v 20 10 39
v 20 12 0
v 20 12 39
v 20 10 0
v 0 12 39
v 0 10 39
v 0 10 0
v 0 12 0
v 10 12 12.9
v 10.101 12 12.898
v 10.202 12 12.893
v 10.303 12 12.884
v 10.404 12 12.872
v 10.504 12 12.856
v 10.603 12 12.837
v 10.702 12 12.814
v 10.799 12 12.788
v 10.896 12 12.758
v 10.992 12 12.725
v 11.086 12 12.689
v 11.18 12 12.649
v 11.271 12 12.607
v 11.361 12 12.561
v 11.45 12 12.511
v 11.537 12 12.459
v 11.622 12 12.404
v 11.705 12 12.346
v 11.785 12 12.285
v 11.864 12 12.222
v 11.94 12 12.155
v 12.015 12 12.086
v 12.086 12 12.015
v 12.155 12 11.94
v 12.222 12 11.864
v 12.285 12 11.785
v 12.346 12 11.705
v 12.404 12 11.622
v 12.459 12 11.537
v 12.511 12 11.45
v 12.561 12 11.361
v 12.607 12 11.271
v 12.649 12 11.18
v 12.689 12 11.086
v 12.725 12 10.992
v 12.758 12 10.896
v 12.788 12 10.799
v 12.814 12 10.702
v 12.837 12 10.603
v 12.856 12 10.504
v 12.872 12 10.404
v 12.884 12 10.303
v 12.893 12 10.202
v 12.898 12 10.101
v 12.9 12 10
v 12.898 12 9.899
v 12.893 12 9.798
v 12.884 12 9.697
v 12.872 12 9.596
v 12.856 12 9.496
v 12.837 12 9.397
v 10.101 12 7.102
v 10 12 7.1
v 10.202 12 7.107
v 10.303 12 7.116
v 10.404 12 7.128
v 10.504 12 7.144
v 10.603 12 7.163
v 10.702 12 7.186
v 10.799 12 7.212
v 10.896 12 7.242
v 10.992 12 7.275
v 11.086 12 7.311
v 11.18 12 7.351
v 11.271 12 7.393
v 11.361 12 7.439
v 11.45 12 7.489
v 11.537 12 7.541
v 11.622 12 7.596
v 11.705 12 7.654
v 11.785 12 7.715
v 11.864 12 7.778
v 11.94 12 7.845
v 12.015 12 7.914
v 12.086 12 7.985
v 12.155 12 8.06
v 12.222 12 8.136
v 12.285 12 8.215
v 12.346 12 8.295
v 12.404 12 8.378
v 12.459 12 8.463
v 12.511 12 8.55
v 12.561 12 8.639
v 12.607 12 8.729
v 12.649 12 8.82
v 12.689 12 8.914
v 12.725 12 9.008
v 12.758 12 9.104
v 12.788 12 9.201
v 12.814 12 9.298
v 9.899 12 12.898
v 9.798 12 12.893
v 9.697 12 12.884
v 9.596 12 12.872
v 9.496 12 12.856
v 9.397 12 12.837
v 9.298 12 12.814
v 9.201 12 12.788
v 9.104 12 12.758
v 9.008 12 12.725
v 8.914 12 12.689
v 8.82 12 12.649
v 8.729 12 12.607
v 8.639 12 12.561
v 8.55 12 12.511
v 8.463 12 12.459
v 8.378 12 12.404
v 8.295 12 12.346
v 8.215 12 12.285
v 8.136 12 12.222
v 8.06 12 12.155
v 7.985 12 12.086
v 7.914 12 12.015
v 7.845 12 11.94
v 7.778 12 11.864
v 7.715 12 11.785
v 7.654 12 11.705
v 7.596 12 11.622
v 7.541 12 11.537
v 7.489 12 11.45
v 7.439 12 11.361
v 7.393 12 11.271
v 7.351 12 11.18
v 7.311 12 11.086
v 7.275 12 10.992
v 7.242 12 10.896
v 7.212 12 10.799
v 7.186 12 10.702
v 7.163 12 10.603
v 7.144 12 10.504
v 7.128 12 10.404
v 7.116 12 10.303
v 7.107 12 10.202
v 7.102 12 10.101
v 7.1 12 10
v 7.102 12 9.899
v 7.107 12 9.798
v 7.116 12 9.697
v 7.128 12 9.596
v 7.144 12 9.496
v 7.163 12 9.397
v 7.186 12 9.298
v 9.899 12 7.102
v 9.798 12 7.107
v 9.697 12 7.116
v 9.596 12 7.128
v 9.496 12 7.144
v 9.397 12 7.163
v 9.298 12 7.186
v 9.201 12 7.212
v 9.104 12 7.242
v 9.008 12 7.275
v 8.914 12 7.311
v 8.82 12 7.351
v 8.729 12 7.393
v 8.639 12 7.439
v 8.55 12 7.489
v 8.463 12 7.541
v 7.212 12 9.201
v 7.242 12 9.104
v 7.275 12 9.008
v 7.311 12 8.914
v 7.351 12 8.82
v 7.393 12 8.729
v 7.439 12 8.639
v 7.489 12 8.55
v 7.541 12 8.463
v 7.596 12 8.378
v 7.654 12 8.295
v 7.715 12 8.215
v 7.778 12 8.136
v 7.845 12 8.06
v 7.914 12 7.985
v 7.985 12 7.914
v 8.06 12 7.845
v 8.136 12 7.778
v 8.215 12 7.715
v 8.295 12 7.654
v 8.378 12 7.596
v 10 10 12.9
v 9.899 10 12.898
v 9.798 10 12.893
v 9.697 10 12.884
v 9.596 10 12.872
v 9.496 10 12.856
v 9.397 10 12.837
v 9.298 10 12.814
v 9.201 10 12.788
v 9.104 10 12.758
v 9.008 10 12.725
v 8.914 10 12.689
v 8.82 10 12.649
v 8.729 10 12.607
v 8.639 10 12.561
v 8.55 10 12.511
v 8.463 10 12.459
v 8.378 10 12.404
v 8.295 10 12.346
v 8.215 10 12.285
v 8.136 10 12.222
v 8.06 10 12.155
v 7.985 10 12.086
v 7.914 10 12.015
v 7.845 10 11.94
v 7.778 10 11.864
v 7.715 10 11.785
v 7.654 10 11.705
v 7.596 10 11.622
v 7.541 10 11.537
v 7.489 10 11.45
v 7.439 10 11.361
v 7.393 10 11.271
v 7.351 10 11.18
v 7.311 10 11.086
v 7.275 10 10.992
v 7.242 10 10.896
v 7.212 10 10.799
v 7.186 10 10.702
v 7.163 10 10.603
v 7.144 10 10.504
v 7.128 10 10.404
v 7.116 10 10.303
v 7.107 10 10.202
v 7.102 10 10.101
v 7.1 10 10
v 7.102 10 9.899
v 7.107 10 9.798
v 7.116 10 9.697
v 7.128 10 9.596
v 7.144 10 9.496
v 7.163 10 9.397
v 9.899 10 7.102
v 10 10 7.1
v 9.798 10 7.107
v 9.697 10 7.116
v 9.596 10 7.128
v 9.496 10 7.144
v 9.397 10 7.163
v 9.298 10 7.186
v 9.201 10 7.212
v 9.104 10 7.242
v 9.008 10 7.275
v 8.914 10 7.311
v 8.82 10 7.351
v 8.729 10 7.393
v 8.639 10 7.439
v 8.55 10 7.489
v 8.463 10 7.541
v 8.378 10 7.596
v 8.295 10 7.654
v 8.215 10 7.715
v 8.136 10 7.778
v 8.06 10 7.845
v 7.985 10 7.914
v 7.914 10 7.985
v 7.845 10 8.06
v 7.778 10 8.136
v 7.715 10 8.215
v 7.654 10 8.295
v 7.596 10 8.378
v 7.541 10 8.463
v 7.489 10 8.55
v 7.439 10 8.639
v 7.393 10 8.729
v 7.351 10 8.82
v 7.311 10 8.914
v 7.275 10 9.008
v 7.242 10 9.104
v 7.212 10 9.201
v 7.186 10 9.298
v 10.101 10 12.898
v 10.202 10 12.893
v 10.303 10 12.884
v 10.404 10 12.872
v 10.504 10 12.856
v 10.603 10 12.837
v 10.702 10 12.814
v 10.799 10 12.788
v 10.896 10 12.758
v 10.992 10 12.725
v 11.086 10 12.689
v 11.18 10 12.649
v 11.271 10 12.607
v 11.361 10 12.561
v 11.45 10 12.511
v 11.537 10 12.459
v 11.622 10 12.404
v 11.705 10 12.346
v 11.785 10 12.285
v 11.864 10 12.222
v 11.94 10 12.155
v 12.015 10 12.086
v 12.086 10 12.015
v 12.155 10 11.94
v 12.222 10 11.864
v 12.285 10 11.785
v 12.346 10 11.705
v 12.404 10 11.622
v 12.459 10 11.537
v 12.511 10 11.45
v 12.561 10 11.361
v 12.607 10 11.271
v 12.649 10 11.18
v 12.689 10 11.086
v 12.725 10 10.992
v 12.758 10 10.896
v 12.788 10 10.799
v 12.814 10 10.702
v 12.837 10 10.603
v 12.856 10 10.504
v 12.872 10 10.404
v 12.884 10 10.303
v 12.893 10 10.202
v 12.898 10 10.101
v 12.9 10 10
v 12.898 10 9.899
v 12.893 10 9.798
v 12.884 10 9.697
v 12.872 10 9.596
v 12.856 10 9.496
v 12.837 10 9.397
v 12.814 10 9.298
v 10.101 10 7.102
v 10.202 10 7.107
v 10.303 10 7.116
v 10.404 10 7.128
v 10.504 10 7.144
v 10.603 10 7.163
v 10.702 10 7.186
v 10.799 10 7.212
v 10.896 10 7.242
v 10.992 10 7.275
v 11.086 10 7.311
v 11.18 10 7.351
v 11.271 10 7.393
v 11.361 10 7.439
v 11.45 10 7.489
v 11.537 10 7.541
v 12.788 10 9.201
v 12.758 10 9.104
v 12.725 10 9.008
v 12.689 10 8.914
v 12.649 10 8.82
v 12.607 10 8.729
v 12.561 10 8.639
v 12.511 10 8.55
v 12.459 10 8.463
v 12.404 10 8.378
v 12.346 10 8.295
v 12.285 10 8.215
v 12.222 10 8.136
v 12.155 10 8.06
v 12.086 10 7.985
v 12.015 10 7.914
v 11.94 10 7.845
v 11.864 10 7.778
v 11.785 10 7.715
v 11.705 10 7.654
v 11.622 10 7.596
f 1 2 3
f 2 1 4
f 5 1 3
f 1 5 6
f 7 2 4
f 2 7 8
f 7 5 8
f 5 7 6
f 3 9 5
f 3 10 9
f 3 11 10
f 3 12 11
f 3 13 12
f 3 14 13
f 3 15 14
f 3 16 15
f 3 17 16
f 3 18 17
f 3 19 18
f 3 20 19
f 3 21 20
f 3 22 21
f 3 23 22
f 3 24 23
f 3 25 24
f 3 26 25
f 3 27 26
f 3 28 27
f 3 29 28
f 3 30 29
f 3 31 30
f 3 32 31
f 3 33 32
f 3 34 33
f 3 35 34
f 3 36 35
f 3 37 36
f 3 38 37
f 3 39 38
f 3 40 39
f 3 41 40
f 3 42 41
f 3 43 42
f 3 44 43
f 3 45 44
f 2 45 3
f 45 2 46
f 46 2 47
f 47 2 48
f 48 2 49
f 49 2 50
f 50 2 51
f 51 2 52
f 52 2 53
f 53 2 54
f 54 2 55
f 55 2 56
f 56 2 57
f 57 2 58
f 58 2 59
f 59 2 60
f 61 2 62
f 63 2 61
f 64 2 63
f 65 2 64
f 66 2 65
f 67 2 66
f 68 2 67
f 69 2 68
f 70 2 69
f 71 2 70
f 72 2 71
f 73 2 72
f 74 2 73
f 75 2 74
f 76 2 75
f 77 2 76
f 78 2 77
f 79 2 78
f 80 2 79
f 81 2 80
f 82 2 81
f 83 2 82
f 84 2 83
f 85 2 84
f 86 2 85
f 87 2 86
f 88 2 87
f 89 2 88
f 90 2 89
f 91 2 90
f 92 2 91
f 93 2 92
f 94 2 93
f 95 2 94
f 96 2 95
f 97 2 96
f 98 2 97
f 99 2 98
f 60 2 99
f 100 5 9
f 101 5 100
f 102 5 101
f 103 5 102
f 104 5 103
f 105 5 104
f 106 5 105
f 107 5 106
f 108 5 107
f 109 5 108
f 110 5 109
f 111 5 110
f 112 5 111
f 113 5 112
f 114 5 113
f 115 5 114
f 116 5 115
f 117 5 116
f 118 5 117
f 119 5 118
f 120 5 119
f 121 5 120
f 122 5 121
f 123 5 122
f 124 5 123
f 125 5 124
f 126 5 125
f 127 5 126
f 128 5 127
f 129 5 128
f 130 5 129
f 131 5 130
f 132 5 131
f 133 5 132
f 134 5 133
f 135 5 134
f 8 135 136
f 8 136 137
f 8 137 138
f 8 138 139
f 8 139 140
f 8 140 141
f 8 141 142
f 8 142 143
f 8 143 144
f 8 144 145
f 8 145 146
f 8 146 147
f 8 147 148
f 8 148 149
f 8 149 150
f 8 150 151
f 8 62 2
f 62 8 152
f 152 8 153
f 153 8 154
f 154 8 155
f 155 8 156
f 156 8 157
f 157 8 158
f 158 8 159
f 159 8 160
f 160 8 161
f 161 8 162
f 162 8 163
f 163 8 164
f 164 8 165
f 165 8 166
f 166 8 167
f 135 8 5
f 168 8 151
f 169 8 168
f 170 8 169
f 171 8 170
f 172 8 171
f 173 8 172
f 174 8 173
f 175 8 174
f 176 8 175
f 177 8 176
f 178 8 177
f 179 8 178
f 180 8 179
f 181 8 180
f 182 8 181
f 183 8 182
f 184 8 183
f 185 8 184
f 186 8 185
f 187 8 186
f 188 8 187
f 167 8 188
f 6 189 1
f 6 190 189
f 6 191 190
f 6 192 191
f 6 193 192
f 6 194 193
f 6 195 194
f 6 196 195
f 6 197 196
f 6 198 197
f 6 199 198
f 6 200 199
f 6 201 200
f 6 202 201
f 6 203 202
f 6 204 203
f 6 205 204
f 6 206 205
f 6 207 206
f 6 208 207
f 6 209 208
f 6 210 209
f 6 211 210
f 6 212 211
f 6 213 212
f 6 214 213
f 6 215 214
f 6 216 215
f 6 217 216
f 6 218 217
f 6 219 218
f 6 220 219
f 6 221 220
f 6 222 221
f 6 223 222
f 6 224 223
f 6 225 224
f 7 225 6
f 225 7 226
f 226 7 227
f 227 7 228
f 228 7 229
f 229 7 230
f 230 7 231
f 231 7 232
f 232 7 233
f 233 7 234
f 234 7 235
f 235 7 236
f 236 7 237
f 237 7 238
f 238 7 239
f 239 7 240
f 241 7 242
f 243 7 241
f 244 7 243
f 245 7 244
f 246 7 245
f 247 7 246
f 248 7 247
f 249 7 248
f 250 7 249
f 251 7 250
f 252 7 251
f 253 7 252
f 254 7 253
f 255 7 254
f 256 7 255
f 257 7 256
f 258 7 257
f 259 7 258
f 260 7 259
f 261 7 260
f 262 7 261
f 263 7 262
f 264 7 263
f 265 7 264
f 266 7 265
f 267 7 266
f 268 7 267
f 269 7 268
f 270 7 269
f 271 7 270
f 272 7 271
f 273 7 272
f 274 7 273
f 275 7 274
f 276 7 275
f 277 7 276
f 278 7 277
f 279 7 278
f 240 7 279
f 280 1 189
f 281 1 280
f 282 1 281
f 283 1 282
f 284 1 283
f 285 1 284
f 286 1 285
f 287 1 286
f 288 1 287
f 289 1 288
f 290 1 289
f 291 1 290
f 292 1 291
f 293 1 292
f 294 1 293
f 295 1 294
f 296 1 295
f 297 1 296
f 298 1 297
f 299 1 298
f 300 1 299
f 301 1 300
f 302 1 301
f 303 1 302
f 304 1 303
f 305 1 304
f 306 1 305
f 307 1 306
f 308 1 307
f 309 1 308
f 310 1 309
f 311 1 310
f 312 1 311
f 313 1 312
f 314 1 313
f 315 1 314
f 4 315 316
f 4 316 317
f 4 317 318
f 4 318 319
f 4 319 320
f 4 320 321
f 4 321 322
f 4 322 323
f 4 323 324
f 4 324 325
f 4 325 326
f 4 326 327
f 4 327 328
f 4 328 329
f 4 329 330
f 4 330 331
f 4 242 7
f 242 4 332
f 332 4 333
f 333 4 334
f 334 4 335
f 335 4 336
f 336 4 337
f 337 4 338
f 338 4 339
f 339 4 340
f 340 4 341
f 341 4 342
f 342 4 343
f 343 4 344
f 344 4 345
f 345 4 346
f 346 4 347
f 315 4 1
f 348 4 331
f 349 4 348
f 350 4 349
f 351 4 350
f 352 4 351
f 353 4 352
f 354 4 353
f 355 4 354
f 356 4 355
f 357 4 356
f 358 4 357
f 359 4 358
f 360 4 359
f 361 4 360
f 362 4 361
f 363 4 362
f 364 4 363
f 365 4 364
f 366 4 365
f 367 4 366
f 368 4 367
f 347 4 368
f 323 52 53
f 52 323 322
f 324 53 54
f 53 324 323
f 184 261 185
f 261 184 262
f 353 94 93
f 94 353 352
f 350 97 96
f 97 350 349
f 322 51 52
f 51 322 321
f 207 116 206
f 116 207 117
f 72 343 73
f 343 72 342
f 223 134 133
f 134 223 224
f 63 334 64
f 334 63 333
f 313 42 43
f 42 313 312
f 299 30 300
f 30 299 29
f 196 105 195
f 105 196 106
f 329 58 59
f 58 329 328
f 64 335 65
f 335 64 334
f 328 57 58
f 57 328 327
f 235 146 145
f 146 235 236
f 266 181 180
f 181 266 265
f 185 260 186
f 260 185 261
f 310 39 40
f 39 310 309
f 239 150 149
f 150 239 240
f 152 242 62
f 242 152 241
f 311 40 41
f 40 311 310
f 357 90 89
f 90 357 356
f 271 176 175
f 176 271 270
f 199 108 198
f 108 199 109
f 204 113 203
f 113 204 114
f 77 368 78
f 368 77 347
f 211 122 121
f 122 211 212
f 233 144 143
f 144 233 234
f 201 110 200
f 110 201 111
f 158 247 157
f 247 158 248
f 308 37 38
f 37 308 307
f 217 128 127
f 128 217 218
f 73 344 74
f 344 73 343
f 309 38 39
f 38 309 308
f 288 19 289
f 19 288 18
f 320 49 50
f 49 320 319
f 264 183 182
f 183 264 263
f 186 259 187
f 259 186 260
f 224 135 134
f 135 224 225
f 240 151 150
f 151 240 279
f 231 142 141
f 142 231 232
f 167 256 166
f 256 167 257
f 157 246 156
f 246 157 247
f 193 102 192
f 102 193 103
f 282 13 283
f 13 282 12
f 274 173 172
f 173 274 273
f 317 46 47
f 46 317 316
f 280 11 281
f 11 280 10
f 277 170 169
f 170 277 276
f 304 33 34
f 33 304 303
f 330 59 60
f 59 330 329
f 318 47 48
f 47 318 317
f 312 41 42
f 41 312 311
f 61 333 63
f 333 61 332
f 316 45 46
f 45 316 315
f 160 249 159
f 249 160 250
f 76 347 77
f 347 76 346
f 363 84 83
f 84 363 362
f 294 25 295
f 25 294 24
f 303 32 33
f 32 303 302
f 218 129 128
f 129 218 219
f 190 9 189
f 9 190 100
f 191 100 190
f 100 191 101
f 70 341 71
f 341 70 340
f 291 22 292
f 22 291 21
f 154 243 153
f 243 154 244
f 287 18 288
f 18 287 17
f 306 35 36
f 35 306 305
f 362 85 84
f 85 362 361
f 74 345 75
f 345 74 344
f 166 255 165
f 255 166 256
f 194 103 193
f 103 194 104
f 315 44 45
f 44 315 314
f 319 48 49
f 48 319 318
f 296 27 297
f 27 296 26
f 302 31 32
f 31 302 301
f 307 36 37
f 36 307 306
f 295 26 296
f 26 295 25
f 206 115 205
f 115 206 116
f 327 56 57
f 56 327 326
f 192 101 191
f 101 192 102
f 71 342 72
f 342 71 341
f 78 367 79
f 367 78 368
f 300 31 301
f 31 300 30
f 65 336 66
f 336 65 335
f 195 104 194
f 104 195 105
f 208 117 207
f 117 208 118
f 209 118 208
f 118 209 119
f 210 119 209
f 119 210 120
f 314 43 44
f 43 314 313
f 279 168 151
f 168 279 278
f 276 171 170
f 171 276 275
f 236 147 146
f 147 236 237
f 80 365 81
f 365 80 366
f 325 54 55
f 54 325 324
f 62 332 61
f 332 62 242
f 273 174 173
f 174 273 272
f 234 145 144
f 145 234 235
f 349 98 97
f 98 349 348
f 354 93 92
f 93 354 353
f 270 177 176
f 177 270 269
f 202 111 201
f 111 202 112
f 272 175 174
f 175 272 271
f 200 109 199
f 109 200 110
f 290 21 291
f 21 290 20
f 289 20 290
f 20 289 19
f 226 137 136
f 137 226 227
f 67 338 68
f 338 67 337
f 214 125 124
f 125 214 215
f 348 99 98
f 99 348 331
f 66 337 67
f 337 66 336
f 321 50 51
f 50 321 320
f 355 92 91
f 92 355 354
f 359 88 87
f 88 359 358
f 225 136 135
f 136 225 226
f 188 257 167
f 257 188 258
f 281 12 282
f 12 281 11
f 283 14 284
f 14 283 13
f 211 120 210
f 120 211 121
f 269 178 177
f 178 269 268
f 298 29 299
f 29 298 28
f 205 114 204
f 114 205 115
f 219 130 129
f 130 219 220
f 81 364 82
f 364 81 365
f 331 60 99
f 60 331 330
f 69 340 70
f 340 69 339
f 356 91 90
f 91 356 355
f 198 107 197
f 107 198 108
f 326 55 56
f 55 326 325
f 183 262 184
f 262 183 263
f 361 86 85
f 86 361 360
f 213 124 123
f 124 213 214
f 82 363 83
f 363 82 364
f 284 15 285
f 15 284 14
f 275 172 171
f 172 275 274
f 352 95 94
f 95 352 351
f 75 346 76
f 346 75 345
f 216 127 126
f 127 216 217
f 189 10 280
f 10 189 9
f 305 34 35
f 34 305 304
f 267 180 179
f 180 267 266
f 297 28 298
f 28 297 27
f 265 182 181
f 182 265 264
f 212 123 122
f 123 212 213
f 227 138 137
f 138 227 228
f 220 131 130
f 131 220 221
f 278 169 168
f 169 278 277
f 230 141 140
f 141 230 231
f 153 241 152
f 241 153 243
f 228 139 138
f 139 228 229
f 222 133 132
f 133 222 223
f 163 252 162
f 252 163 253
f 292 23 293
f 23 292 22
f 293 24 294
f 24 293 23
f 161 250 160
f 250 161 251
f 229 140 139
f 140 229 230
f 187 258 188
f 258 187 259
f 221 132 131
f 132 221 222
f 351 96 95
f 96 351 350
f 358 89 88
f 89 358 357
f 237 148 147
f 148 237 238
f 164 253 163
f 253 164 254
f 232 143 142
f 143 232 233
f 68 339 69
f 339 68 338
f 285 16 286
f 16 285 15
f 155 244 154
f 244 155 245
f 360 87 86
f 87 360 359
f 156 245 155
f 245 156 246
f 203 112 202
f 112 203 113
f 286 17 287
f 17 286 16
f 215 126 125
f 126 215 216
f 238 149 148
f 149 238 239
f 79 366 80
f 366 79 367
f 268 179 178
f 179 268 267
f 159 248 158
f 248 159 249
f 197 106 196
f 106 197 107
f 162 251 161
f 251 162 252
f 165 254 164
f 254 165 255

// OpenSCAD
difference() {
    translate([0, 10, 0]) {
        cube([20, 2, 39]);
    }
    translate([20 / 2, 30, 10]) {
        rotate([90, 0, 0]) {
            // Bohrung befestigung an Gitter
            cylinder(d=5.8, h=60, $fn=180);
        }
    }
} 
